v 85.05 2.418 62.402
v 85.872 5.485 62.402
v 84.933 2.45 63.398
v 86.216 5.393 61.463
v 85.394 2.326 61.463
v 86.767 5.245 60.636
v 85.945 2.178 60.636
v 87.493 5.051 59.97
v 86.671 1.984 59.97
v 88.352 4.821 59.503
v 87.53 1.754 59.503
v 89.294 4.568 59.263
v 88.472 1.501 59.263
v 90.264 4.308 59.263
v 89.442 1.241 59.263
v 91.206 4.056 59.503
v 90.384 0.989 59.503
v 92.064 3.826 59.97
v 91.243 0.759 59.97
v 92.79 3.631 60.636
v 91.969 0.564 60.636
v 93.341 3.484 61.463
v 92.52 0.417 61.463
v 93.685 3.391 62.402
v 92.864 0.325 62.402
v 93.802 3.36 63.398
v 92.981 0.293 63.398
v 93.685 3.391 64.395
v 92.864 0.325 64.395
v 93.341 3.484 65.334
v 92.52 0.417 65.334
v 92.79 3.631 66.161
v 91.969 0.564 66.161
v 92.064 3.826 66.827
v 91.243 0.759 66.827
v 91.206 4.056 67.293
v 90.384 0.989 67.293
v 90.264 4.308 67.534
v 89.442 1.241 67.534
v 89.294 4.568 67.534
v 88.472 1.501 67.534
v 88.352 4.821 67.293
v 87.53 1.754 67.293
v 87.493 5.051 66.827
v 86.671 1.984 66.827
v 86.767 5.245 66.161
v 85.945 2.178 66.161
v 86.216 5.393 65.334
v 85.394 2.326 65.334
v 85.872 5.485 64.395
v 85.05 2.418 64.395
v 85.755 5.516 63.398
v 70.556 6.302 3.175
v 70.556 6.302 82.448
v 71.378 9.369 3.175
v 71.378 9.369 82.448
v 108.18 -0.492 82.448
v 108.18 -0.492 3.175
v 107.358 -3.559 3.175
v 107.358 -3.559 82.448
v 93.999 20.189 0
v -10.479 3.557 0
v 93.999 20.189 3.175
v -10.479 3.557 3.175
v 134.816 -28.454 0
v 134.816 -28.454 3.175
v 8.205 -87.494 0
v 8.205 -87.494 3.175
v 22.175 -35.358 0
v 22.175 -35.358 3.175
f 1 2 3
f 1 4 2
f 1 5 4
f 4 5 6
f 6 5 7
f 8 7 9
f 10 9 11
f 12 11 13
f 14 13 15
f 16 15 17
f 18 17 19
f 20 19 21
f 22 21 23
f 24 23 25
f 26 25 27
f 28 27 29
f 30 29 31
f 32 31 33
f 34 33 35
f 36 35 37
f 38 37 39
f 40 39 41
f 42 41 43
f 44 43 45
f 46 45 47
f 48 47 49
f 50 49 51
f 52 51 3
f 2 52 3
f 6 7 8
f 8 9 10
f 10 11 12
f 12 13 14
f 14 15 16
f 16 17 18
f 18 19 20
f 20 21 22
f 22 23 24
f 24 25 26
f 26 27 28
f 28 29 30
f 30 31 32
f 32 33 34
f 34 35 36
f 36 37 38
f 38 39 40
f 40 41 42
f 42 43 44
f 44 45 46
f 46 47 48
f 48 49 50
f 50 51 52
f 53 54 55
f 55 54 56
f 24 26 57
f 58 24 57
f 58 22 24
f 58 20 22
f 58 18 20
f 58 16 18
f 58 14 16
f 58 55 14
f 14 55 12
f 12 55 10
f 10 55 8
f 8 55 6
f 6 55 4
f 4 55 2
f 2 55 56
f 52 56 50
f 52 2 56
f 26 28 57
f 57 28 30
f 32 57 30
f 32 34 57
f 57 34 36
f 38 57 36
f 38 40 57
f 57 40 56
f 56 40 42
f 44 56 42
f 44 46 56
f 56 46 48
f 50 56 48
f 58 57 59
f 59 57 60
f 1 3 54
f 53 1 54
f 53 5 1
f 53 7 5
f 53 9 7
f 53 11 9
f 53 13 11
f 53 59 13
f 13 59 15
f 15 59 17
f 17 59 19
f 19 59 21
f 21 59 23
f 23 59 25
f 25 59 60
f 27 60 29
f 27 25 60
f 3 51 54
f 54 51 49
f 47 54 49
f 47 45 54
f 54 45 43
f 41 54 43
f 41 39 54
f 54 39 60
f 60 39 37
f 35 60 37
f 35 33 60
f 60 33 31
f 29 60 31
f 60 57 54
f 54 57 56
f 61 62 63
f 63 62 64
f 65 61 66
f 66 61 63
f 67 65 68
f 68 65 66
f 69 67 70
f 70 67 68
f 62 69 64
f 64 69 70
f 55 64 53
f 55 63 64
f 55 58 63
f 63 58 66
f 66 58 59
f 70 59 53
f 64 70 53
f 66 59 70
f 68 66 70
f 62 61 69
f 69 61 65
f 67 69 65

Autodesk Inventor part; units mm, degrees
ref_plane "YZ Plane" through (0, 0, 0) normal (1, 0, 0) x (0, 1, 0)
ref_plane "XZ Plane" through (0, 0, 0) normal (0, 1, 0) x (-1, 0, 0)
ref_plane "XY Plane" through (0, 0, 0) normal (0, 0, 1) x (1, 0, 0)
sketch "Sketch1" plane through (0, 0, 0) normal (0, 0, 1) x (1, 0, 0)
  line L0 (-10.4788, 3.5567) -> (22.1748, -35.3584)
  line L1 (-10.4788, 3.5567) -> (40.3212, 3.5567) construction
  line L2 (22.1748, -35.3584) -> (8.205, -87.4942)
  line L3 (8.205, -87.4942) -> (134.8162, -28.4545)
  line L4 (134.8162, -28.4545) -> (93.9992, 20.1894)
  line L5 (93.9992, 20.1894) -> (-10.4788, 3.5567)
  point P0 (0, 0)
  dimension "d0" = 50.8
  dimension "d1" = 50
  dimension "d2" = 53.975
  dimension "d3" = 125
  dimension "d4" = 139.7
  dimension "d5" = 50
  dimension "d6" = 63.5
  dimension "d7" = 75
extrude "Extrusion1" add sketch "Sketch1" along normal blind 3.175
sketch "Sketch2" plane through (0, 0, 3.175) normal (0, 0, 1) x (1, 0, 0)
  line L0 (22.1748, -35.3584) -> (8.205, -87.4942) projected
  line L1 (8.205, -87.4942) -> (8.205, -87.4942)
  line L2 (93.9992, 20.1894) -> (113.481, 20.1894) construction
  line L3 (88.957, 1.3714) -> (107.3579, -3.5591)
  line L4 (107.3579, -3.5591) -> (108.1796, -0.4923)
  line L5 (108.1796, -0.4923) -> (71.3778, 9.3687)
  line L6 (71.3778, 9.3687) -> (70.5561, 6.3019)
  line L7 (88.957, 1.3714) -> (70.5561, 6.3019)
  point P0 (0, 0)
  dimension "d10" = 19.4818
  dimension "d12" = 19.05
  dimension "d13" = 3.175
  dimension "d14" = 38.1
extrude "Extrusion2" add sketch "Sketch2" along normal blind 79.2734
sketch "Sketch3" plane through (71.3778, 9.3687, 82.4484) normal (0.2588, 0.9659, 0) x (0.9659, -0.2588, 0)
  line L0 (0, 0) -> (19.05, 0)
  line L1 (19.05, 0) -> (19.05, 19.05)
  line L2 (19.05, 19.05) -> (0, 19.05)
  line L3 (0, 19.05) -> (0, 0)
  point P0 (-66.5209, 82.4484)
  dimension "d17" = 19.05
  dimension "d18" = 19.05
hole "Hole1" at (89.7787, 4.4382, 63.3984) direction (-0.2588, -0.9659, 0) diameter 8.3312 end through all
properties part number "Left Bicep"
